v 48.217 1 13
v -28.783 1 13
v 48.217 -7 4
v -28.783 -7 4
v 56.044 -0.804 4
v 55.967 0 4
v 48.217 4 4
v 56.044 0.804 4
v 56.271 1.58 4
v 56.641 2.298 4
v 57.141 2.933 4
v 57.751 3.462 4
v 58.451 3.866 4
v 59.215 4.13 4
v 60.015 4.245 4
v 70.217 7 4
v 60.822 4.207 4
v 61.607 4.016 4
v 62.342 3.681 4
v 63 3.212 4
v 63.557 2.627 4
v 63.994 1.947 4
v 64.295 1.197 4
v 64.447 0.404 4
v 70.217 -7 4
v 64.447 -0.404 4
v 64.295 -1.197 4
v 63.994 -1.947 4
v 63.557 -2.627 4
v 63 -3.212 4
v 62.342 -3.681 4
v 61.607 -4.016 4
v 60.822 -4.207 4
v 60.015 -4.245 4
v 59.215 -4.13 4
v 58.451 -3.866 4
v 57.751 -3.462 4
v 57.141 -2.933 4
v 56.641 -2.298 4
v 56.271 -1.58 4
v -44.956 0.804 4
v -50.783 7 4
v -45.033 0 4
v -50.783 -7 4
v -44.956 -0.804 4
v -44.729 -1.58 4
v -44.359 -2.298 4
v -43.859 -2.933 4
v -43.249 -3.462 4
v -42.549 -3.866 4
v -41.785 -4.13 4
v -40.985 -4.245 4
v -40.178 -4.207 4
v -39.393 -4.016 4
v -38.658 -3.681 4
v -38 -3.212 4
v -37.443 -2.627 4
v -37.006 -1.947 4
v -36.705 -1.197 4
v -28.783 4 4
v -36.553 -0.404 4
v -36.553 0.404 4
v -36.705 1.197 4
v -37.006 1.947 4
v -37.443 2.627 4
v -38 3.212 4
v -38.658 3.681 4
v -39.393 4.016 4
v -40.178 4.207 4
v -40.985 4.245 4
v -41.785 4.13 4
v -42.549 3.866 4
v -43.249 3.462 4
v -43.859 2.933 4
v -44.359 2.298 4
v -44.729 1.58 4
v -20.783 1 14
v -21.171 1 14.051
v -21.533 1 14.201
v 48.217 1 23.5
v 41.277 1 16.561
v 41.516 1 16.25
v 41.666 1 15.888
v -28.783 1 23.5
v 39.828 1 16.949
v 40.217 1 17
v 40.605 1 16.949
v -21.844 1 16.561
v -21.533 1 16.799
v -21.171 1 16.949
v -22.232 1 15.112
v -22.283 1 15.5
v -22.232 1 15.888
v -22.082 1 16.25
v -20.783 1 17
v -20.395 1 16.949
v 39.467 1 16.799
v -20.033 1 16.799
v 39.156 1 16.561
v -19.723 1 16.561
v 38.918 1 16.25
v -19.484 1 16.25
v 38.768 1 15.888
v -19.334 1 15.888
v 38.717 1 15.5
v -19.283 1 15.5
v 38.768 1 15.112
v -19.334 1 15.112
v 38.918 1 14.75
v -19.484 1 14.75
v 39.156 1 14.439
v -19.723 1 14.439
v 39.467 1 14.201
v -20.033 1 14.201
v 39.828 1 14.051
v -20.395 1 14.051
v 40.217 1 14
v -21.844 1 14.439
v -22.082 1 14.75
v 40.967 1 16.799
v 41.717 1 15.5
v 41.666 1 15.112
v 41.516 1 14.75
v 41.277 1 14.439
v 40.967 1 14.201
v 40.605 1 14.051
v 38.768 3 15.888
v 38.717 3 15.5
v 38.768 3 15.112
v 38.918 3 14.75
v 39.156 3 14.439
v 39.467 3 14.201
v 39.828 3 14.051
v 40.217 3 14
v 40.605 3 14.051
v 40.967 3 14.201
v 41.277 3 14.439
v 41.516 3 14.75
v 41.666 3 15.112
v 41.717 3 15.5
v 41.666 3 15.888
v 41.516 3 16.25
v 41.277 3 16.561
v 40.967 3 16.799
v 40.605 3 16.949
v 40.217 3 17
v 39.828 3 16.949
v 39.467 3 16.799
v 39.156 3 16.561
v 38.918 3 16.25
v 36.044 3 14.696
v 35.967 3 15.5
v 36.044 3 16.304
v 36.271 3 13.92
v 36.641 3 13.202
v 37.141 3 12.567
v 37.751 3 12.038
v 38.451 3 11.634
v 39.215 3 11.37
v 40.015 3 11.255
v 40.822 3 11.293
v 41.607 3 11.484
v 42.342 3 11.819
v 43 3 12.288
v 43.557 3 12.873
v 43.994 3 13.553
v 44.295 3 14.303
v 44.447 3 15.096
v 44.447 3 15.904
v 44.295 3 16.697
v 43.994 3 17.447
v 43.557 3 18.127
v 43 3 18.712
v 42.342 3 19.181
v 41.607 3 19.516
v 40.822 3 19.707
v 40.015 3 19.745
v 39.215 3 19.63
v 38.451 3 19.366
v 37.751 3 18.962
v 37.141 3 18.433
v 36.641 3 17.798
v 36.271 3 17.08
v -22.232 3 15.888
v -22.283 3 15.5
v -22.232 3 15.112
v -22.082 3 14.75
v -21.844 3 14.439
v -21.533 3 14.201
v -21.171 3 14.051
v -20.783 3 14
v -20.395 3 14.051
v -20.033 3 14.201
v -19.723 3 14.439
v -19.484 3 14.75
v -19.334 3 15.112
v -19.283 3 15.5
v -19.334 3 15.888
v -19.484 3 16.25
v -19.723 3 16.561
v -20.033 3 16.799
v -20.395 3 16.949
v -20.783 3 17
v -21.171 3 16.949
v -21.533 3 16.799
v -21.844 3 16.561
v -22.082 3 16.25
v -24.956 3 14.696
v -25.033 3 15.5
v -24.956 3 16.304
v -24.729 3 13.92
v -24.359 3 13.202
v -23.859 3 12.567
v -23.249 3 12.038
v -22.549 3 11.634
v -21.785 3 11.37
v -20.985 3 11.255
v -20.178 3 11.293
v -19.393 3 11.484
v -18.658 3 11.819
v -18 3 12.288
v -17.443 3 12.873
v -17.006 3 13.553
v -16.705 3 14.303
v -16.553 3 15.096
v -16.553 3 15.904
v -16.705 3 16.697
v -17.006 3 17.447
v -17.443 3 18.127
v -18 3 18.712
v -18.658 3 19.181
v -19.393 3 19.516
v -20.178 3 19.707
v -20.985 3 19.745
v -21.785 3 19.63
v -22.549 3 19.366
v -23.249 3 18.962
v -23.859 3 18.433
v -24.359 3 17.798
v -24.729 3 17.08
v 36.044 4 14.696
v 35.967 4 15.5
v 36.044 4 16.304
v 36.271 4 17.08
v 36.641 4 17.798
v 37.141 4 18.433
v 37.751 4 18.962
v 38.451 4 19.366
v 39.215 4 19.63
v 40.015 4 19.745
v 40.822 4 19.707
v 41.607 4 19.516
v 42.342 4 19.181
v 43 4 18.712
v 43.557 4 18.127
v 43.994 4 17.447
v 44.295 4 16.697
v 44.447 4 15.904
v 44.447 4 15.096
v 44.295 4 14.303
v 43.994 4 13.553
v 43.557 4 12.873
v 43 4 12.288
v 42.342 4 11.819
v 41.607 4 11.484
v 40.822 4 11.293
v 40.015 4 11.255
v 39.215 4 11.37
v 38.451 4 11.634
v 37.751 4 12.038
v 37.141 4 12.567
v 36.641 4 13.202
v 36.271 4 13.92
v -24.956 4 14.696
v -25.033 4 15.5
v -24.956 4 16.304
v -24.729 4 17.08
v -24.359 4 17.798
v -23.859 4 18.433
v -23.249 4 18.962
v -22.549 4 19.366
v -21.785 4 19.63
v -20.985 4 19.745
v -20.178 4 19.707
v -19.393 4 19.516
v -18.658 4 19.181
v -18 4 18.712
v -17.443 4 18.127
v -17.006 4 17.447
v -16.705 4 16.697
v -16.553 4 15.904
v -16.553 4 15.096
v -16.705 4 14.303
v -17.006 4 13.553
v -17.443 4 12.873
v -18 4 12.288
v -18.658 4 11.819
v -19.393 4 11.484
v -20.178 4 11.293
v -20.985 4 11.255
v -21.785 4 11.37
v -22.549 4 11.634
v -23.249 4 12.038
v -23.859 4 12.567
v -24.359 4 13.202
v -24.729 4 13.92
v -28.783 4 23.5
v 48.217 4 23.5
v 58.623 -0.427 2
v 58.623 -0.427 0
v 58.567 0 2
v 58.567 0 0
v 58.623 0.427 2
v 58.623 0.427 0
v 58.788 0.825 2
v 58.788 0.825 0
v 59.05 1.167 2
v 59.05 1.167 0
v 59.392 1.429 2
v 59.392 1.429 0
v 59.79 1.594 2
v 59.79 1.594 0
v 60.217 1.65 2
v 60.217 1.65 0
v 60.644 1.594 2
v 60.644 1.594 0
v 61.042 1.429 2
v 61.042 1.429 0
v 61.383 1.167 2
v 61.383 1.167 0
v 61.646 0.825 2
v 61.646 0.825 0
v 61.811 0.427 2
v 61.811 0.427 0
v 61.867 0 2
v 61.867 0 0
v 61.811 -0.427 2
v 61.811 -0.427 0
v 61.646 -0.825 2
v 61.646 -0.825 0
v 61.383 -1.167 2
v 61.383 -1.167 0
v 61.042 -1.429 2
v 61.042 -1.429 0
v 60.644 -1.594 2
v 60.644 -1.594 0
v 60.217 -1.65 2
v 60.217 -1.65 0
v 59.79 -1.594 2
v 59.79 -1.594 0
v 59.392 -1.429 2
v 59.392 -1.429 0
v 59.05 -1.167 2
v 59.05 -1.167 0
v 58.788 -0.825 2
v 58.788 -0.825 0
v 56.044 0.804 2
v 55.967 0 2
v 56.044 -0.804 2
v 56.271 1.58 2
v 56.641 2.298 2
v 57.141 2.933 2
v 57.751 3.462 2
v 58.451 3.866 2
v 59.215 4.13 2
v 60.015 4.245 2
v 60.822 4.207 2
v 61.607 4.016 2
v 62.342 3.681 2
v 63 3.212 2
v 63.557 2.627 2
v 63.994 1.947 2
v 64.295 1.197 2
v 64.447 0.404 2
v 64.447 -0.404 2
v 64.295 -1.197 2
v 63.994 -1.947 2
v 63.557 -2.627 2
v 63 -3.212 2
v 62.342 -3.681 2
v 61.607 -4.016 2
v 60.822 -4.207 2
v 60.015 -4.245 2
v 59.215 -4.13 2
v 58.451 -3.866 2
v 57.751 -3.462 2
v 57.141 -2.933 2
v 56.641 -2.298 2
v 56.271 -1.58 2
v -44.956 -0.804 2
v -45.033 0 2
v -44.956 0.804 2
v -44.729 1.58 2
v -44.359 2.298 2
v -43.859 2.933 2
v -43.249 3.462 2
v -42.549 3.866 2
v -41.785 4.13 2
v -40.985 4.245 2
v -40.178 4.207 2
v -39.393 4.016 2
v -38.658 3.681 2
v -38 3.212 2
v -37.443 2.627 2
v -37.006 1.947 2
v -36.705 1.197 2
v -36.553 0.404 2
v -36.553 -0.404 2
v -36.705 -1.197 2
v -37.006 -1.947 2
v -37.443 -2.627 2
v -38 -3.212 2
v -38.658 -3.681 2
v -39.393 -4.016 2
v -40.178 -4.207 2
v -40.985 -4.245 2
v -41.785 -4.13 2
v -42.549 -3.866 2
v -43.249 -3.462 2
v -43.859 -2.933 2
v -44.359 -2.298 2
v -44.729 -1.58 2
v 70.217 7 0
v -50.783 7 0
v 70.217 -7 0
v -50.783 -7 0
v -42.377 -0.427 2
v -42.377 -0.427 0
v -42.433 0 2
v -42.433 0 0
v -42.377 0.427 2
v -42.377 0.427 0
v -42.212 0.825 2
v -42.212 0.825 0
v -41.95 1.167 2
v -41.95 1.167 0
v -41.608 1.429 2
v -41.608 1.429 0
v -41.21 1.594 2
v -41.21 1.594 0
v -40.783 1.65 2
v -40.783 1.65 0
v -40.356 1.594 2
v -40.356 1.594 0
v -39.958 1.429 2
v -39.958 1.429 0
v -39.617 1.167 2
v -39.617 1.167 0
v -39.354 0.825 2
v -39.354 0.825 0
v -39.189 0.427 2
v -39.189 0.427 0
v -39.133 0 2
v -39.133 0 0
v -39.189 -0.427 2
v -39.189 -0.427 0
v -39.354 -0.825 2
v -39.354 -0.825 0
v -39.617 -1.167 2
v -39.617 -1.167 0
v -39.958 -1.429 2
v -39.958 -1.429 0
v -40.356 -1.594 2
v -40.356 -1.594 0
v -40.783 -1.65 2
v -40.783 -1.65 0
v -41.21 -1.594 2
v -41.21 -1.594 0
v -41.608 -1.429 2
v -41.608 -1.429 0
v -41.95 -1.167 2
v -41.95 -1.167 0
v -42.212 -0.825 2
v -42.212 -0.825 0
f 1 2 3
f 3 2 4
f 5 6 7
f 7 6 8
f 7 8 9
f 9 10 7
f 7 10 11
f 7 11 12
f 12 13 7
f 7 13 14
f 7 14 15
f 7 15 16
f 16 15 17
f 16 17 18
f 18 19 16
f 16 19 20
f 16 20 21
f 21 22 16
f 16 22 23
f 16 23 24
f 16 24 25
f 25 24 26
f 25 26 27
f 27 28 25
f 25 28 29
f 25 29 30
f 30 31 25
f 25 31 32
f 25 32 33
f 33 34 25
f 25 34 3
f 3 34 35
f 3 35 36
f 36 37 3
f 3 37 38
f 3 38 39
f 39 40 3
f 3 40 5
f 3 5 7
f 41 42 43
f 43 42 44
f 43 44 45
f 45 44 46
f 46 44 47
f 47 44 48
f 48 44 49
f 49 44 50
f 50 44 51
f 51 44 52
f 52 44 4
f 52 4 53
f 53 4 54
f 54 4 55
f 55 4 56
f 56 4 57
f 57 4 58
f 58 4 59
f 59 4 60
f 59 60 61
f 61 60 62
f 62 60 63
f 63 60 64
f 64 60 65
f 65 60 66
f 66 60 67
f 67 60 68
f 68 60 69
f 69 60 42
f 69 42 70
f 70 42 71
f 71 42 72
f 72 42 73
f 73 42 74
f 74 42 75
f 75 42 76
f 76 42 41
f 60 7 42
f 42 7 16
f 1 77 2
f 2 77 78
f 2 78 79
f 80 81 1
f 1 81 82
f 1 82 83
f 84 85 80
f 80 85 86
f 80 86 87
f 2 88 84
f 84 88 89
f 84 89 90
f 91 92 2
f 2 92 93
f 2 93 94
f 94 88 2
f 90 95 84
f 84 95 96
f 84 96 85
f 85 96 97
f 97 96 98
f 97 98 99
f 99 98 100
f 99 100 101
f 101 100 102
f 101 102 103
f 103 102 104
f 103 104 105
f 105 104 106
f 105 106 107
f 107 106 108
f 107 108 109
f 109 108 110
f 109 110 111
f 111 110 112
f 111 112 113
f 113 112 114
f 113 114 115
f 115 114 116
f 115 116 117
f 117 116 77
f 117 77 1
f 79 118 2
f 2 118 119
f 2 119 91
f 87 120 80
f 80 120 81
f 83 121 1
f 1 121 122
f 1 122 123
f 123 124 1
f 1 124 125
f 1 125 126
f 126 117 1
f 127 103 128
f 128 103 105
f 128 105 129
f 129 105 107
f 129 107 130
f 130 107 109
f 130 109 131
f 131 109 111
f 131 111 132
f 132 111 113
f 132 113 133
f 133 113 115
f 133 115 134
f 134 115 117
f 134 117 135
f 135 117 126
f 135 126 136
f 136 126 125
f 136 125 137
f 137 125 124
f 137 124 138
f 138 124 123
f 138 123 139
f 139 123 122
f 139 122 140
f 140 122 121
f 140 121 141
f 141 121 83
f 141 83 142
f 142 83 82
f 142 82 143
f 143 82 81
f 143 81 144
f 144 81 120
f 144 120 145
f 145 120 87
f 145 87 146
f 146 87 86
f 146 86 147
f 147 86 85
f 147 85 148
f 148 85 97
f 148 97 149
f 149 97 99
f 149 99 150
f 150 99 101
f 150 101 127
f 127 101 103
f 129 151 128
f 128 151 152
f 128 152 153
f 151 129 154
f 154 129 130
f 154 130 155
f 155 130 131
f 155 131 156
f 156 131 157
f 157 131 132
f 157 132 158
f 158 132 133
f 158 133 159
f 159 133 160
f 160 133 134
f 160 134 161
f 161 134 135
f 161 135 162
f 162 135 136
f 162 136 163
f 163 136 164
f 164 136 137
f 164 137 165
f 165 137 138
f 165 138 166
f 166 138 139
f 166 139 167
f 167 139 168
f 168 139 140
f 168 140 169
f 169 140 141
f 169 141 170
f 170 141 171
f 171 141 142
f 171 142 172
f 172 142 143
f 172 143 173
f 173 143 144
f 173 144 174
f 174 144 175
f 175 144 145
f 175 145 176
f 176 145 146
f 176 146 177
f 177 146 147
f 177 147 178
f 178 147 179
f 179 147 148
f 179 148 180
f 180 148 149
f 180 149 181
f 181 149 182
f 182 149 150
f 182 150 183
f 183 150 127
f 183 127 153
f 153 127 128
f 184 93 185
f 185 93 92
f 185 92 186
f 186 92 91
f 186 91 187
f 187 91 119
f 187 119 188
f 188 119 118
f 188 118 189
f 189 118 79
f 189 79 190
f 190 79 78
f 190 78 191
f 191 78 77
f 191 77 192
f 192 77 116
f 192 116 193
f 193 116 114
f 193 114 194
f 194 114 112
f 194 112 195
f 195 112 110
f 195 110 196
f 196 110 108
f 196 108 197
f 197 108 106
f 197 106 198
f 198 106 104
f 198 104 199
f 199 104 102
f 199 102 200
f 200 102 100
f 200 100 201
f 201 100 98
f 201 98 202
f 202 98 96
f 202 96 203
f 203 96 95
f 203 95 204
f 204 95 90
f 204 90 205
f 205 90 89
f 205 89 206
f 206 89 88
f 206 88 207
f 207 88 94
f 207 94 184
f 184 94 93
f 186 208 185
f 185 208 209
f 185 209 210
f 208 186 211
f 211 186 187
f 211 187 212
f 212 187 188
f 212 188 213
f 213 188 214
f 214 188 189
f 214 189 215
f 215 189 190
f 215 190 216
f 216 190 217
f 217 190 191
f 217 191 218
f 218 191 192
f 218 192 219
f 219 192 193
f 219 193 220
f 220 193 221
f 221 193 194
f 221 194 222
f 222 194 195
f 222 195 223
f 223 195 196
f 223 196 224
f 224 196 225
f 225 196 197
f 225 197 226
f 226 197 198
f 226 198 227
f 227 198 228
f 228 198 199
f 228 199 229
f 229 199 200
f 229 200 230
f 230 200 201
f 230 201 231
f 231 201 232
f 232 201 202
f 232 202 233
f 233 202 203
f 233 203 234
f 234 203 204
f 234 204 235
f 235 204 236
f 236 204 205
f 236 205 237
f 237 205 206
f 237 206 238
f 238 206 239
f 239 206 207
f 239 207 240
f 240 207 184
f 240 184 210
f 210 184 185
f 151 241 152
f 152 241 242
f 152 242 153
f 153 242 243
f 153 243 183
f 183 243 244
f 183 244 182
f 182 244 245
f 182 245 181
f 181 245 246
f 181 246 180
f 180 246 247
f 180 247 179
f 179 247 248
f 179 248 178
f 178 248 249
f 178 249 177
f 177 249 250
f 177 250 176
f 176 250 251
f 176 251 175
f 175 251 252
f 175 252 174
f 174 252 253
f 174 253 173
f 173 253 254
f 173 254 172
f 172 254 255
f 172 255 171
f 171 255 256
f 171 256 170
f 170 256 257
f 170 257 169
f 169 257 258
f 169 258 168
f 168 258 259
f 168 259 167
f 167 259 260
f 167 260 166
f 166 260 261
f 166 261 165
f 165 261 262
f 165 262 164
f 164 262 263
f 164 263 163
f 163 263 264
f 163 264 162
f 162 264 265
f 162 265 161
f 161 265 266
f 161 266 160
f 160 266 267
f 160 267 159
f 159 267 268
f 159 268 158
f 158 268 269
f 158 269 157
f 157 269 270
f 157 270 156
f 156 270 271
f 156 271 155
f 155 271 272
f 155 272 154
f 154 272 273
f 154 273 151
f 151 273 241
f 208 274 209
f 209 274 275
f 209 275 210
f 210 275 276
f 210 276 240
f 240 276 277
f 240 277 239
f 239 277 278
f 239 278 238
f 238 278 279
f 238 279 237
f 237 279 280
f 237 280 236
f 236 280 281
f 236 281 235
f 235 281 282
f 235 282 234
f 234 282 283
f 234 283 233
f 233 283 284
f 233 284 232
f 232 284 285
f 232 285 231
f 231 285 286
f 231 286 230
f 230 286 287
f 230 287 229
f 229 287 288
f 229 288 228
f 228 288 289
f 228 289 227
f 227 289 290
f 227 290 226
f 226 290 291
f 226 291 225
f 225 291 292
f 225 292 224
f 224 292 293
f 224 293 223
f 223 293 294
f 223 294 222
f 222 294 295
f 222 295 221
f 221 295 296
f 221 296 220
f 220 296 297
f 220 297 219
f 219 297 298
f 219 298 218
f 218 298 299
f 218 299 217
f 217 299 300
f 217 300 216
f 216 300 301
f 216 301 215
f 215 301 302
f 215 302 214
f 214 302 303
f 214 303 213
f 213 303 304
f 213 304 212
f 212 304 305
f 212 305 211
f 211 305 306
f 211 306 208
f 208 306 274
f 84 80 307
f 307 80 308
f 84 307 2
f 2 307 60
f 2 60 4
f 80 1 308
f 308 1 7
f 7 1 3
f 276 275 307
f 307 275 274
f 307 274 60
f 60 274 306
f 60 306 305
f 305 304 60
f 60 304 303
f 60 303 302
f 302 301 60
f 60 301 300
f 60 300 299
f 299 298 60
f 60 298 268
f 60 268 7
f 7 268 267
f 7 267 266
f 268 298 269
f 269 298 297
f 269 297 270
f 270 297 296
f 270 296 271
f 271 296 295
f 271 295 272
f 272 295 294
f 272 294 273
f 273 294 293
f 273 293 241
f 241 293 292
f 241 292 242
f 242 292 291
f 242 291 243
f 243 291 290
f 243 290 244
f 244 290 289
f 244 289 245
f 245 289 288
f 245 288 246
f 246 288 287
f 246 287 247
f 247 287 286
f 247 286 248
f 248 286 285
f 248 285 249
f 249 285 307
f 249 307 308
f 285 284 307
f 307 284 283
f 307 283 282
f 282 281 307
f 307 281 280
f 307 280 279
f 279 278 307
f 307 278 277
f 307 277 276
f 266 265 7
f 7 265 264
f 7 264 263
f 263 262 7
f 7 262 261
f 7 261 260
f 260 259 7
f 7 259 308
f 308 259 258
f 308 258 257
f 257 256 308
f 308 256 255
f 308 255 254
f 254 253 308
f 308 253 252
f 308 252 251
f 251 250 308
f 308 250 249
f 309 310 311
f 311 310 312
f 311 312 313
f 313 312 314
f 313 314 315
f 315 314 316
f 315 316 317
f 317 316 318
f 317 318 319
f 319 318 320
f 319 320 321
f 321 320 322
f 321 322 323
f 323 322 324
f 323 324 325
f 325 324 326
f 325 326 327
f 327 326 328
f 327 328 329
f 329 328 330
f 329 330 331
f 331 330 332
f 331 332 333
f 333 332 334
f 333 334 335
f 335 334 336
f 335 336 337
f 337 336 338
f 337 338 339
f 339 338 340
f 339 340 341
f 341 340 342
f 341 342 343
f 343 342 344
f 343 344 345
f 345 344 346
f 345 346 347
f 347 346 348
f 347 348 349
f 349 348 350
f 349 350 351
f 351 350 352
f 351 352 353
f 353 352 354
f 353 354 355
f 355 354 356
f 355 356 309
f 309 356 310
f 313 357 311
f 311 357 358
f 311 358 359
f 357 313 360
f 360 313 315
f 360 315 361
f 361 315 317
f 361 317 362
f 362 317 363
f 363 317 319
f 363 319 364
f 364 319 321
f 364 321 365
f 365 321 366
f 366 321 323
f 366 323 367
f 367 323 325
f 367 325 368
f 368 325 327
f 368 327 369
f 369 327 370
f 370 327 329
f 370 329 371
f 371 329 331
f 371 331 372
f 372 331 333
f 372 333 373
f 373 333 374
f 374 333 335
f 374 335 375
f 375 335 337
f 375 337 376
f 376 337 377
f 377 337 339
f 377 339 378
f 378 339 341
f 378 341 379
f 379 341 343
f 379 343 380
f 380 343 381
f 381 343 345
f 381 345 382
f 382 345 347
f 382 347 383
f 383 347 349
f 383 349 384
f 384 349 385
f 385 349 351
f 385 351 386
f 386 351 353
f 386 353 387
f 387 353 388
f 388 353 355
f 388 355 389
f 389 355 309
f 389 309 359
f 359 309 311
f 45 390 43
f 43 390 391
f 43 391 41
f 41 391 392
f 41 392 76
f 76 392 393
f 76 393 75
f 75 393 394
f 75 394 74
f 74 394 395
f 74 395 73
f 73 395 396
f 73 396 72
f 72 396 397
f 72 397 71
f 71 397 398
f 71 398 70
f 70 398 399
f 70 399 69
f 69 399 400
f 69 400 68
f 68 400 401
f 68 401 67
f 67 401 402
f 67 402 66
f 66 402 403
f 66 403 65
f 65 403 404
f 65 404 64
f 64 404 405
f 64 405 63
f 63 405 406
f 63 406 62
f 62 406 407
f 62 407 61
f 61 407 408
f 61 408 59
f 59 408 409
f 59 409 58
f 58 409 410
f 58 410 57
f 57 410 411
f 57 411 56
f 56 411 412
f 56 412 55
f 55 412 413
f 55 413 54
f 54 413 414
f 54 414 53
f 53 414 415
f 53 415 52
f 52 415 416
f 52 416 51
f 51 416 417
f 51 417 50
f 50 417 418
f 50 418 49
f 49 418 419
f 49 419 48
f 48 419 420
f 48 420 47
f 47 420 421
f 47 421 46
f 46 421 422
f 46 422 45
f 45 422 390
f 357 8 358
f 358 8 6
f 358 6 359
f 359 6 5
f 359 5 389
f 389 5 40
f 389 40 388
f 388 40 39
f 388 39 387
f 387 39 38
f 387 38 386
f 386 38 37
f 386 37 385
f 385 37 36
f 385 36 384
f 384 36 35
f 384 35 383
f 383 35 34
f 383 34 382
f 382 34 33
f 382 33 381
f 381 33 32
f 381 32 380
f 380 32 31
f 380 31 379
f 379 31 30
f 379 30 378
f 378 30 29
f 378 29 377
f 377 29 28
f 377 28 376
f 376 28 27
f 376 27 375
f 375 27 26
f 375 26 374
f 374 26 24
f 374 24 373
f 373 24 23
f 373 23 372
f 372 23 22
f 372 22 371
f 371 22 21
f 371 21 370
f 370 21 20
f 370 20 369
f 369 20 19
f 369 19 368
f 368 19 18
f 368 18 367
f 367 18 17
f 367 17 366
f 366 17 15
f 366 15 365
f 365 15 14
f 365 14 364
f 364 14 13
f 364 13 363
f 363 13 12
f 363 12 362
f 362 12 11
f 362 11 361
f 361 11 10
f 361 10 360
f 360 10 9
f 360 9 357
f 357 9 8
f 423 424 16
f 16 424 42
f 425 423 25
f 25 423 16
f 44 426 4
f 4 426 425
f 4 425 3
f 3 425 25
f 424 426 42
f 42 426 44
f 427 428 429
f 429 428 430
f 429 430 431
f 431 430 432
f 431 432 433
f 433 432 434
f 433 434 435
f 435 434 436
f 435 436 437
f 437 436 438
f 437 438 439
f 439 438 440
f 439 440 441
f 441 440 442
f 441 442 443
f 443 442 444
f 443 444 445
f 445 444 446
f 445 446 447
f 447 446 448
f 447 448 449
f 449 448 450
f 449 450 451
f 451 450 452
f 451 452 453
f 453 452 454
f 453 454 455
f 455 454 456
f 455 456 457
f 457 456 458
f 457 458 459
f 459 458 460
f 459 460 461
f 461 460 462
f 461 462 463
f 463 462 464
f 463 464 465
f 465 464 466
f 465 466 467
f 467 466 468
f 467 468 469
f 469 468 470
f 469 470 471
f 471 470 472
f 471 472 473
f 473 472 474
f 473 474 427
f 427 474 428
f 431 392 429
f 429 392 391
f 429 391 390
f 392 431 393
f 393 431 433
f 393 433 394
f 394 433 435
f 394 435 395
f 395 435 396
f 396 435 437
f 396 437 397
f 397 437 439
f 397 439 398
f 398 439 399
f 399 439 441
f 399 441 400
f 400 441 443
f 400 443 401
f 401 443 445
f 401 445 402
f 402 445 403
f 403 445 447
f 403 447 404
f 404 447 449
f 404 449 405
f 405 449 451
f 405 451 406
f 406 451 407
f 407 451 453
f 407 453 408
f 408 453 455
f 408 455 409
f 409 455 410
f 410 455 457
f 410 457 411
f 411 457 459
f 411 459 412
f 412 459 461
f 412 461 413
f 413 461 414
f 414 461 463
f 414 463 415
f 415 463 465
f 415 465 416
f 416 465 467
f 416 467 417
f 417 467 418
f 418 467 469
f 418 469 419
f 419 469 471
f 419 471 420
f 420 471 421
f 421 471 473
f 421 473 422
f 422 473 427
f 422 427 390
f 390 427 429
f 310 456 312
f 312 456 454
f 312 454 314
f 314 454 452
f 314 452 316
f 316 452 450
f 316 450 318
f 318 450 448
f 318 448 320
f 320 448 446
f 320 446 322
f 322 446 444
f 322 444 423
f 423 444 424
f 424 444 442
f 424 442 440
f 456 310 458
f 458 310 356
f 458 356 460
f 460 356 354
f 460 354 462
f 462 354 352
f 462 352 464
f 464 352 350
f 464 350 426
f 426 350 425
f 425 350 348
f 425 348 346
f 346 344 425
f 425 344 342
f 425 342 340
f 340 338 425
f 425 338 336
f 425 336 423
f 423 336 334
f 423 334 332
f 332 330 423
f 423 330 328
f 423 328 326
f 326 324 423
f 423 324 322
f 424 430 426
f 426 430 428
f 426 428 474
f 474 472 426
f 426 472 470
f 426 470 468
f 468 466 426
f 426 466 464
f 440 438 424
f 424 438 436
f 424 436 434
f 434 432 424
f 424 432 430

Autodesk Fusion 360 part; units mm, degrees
sketch "Sketch1" plane through (0, 0, 0) normal (0, 0, 1) x (1, 0, 0)
  circle A0 centre (-40.7833, 0) radius 4.25
  circle A1 centre (60.2167, 0) radius 1.65
  circle A2 centre (60.2167, 0) radius 4.25
  circle A3 centre (19.2167, 0) radius 1.65
  circle A4 centre (19.2167, 0) radius 4.25
  circle A5 centre (-40.7833, 0) radius 1.65
  line L0 (-50.7833, -7) -> (70.2167, -7)
  line L1 (70.2167, -7) -> (70.2167, 7)
  line L2 (70.2167, 7) -> (-50.7833, 7)
  line L3 (-50.7833, 7) -> (-50.7833, -7)
  dimension "d3" = 8.5
  dimension "d4" = 3.3
  dimension "d5" = 8.5
  dimension "d6" = 3.3
  dimension "d7" = 8.5
  dimension "d8" = 60
  dimension "d9" = 41
  dimension "d10" = 3.3
  dimension "d11" = 14
  dimension "d12" = 10
  dimension "d13" = 10
  dimension "d14" = 7
extrude "Extrude1" add sketch "Sketch1" along normal blind 2 contours A0 | A2 makes body 1 at (-36.5386, -0.2118, 1.3333) makes body 2 at (64.4614, -0.2118, 1.3333)
extrude "Extrude2" add sketch "Sketch1" along normal blind 4 contours A3 | A4 | L0 L1 L2 L3 bodies 1 2
sketch "Sketch2" plane through (0, 0, 0) normal (0, 1, 0) x (1, 0, 0)
  circle A0 centre (-20.7833, -15.5) radius 1.5
  circle A1 centre (-20.7833, -15.5) radius 4.25
  line L0 (70.2167, 0) -> (-50.7833, 0)
  circle A2 centre (40.2167, -15.5) radius 1.5
  circle A3 centre (40.2167, -15.5) radius 4.25
  line L1 (-28.7833, -23.5) -> (48.2167, -23.5)
  line L2 (48.2167, -23.5) -> (48.2167, -4)
  line L3 (48.2167, -4) -> (-28.7833, -4)
  line L4 (-28.7833, -4) -> (-28.7833, -23.5)
  line L5 (70.2167, -4) -> (-50.7833, -4)
  point P0 (-50.7833, 0)
  point P1 (70.2167, 0)
  dimension "d19" = 3
  dimension "d20" = 8.5
  dimension "d21" = 15.5
  dimension "d22" = 3
  dimension "d23" = 8.5
  dimension "d24" = 15.5
  dimension "d25" = 30
  dimension "d27" = 8
  dimension "d28" = 8
  dimension "d29" = 8
  dimension "d36" = 61
extrude "Extrude3" add sketch "Sketch2" along normal blind 3 from surface at 1 contours L1 L2 L3 L4 L5 bodies 1
extrude "Extrude4" add sketch "Sketch2" along normal blind 2 from surface at 1 contours A1 | A3 bodies 1
chamfer "Chamfer1" distance 8 distance2 9 1 edges at (9.7167, 1, 4) measured on face at (68.3001, 0, 4) on bodies 1
